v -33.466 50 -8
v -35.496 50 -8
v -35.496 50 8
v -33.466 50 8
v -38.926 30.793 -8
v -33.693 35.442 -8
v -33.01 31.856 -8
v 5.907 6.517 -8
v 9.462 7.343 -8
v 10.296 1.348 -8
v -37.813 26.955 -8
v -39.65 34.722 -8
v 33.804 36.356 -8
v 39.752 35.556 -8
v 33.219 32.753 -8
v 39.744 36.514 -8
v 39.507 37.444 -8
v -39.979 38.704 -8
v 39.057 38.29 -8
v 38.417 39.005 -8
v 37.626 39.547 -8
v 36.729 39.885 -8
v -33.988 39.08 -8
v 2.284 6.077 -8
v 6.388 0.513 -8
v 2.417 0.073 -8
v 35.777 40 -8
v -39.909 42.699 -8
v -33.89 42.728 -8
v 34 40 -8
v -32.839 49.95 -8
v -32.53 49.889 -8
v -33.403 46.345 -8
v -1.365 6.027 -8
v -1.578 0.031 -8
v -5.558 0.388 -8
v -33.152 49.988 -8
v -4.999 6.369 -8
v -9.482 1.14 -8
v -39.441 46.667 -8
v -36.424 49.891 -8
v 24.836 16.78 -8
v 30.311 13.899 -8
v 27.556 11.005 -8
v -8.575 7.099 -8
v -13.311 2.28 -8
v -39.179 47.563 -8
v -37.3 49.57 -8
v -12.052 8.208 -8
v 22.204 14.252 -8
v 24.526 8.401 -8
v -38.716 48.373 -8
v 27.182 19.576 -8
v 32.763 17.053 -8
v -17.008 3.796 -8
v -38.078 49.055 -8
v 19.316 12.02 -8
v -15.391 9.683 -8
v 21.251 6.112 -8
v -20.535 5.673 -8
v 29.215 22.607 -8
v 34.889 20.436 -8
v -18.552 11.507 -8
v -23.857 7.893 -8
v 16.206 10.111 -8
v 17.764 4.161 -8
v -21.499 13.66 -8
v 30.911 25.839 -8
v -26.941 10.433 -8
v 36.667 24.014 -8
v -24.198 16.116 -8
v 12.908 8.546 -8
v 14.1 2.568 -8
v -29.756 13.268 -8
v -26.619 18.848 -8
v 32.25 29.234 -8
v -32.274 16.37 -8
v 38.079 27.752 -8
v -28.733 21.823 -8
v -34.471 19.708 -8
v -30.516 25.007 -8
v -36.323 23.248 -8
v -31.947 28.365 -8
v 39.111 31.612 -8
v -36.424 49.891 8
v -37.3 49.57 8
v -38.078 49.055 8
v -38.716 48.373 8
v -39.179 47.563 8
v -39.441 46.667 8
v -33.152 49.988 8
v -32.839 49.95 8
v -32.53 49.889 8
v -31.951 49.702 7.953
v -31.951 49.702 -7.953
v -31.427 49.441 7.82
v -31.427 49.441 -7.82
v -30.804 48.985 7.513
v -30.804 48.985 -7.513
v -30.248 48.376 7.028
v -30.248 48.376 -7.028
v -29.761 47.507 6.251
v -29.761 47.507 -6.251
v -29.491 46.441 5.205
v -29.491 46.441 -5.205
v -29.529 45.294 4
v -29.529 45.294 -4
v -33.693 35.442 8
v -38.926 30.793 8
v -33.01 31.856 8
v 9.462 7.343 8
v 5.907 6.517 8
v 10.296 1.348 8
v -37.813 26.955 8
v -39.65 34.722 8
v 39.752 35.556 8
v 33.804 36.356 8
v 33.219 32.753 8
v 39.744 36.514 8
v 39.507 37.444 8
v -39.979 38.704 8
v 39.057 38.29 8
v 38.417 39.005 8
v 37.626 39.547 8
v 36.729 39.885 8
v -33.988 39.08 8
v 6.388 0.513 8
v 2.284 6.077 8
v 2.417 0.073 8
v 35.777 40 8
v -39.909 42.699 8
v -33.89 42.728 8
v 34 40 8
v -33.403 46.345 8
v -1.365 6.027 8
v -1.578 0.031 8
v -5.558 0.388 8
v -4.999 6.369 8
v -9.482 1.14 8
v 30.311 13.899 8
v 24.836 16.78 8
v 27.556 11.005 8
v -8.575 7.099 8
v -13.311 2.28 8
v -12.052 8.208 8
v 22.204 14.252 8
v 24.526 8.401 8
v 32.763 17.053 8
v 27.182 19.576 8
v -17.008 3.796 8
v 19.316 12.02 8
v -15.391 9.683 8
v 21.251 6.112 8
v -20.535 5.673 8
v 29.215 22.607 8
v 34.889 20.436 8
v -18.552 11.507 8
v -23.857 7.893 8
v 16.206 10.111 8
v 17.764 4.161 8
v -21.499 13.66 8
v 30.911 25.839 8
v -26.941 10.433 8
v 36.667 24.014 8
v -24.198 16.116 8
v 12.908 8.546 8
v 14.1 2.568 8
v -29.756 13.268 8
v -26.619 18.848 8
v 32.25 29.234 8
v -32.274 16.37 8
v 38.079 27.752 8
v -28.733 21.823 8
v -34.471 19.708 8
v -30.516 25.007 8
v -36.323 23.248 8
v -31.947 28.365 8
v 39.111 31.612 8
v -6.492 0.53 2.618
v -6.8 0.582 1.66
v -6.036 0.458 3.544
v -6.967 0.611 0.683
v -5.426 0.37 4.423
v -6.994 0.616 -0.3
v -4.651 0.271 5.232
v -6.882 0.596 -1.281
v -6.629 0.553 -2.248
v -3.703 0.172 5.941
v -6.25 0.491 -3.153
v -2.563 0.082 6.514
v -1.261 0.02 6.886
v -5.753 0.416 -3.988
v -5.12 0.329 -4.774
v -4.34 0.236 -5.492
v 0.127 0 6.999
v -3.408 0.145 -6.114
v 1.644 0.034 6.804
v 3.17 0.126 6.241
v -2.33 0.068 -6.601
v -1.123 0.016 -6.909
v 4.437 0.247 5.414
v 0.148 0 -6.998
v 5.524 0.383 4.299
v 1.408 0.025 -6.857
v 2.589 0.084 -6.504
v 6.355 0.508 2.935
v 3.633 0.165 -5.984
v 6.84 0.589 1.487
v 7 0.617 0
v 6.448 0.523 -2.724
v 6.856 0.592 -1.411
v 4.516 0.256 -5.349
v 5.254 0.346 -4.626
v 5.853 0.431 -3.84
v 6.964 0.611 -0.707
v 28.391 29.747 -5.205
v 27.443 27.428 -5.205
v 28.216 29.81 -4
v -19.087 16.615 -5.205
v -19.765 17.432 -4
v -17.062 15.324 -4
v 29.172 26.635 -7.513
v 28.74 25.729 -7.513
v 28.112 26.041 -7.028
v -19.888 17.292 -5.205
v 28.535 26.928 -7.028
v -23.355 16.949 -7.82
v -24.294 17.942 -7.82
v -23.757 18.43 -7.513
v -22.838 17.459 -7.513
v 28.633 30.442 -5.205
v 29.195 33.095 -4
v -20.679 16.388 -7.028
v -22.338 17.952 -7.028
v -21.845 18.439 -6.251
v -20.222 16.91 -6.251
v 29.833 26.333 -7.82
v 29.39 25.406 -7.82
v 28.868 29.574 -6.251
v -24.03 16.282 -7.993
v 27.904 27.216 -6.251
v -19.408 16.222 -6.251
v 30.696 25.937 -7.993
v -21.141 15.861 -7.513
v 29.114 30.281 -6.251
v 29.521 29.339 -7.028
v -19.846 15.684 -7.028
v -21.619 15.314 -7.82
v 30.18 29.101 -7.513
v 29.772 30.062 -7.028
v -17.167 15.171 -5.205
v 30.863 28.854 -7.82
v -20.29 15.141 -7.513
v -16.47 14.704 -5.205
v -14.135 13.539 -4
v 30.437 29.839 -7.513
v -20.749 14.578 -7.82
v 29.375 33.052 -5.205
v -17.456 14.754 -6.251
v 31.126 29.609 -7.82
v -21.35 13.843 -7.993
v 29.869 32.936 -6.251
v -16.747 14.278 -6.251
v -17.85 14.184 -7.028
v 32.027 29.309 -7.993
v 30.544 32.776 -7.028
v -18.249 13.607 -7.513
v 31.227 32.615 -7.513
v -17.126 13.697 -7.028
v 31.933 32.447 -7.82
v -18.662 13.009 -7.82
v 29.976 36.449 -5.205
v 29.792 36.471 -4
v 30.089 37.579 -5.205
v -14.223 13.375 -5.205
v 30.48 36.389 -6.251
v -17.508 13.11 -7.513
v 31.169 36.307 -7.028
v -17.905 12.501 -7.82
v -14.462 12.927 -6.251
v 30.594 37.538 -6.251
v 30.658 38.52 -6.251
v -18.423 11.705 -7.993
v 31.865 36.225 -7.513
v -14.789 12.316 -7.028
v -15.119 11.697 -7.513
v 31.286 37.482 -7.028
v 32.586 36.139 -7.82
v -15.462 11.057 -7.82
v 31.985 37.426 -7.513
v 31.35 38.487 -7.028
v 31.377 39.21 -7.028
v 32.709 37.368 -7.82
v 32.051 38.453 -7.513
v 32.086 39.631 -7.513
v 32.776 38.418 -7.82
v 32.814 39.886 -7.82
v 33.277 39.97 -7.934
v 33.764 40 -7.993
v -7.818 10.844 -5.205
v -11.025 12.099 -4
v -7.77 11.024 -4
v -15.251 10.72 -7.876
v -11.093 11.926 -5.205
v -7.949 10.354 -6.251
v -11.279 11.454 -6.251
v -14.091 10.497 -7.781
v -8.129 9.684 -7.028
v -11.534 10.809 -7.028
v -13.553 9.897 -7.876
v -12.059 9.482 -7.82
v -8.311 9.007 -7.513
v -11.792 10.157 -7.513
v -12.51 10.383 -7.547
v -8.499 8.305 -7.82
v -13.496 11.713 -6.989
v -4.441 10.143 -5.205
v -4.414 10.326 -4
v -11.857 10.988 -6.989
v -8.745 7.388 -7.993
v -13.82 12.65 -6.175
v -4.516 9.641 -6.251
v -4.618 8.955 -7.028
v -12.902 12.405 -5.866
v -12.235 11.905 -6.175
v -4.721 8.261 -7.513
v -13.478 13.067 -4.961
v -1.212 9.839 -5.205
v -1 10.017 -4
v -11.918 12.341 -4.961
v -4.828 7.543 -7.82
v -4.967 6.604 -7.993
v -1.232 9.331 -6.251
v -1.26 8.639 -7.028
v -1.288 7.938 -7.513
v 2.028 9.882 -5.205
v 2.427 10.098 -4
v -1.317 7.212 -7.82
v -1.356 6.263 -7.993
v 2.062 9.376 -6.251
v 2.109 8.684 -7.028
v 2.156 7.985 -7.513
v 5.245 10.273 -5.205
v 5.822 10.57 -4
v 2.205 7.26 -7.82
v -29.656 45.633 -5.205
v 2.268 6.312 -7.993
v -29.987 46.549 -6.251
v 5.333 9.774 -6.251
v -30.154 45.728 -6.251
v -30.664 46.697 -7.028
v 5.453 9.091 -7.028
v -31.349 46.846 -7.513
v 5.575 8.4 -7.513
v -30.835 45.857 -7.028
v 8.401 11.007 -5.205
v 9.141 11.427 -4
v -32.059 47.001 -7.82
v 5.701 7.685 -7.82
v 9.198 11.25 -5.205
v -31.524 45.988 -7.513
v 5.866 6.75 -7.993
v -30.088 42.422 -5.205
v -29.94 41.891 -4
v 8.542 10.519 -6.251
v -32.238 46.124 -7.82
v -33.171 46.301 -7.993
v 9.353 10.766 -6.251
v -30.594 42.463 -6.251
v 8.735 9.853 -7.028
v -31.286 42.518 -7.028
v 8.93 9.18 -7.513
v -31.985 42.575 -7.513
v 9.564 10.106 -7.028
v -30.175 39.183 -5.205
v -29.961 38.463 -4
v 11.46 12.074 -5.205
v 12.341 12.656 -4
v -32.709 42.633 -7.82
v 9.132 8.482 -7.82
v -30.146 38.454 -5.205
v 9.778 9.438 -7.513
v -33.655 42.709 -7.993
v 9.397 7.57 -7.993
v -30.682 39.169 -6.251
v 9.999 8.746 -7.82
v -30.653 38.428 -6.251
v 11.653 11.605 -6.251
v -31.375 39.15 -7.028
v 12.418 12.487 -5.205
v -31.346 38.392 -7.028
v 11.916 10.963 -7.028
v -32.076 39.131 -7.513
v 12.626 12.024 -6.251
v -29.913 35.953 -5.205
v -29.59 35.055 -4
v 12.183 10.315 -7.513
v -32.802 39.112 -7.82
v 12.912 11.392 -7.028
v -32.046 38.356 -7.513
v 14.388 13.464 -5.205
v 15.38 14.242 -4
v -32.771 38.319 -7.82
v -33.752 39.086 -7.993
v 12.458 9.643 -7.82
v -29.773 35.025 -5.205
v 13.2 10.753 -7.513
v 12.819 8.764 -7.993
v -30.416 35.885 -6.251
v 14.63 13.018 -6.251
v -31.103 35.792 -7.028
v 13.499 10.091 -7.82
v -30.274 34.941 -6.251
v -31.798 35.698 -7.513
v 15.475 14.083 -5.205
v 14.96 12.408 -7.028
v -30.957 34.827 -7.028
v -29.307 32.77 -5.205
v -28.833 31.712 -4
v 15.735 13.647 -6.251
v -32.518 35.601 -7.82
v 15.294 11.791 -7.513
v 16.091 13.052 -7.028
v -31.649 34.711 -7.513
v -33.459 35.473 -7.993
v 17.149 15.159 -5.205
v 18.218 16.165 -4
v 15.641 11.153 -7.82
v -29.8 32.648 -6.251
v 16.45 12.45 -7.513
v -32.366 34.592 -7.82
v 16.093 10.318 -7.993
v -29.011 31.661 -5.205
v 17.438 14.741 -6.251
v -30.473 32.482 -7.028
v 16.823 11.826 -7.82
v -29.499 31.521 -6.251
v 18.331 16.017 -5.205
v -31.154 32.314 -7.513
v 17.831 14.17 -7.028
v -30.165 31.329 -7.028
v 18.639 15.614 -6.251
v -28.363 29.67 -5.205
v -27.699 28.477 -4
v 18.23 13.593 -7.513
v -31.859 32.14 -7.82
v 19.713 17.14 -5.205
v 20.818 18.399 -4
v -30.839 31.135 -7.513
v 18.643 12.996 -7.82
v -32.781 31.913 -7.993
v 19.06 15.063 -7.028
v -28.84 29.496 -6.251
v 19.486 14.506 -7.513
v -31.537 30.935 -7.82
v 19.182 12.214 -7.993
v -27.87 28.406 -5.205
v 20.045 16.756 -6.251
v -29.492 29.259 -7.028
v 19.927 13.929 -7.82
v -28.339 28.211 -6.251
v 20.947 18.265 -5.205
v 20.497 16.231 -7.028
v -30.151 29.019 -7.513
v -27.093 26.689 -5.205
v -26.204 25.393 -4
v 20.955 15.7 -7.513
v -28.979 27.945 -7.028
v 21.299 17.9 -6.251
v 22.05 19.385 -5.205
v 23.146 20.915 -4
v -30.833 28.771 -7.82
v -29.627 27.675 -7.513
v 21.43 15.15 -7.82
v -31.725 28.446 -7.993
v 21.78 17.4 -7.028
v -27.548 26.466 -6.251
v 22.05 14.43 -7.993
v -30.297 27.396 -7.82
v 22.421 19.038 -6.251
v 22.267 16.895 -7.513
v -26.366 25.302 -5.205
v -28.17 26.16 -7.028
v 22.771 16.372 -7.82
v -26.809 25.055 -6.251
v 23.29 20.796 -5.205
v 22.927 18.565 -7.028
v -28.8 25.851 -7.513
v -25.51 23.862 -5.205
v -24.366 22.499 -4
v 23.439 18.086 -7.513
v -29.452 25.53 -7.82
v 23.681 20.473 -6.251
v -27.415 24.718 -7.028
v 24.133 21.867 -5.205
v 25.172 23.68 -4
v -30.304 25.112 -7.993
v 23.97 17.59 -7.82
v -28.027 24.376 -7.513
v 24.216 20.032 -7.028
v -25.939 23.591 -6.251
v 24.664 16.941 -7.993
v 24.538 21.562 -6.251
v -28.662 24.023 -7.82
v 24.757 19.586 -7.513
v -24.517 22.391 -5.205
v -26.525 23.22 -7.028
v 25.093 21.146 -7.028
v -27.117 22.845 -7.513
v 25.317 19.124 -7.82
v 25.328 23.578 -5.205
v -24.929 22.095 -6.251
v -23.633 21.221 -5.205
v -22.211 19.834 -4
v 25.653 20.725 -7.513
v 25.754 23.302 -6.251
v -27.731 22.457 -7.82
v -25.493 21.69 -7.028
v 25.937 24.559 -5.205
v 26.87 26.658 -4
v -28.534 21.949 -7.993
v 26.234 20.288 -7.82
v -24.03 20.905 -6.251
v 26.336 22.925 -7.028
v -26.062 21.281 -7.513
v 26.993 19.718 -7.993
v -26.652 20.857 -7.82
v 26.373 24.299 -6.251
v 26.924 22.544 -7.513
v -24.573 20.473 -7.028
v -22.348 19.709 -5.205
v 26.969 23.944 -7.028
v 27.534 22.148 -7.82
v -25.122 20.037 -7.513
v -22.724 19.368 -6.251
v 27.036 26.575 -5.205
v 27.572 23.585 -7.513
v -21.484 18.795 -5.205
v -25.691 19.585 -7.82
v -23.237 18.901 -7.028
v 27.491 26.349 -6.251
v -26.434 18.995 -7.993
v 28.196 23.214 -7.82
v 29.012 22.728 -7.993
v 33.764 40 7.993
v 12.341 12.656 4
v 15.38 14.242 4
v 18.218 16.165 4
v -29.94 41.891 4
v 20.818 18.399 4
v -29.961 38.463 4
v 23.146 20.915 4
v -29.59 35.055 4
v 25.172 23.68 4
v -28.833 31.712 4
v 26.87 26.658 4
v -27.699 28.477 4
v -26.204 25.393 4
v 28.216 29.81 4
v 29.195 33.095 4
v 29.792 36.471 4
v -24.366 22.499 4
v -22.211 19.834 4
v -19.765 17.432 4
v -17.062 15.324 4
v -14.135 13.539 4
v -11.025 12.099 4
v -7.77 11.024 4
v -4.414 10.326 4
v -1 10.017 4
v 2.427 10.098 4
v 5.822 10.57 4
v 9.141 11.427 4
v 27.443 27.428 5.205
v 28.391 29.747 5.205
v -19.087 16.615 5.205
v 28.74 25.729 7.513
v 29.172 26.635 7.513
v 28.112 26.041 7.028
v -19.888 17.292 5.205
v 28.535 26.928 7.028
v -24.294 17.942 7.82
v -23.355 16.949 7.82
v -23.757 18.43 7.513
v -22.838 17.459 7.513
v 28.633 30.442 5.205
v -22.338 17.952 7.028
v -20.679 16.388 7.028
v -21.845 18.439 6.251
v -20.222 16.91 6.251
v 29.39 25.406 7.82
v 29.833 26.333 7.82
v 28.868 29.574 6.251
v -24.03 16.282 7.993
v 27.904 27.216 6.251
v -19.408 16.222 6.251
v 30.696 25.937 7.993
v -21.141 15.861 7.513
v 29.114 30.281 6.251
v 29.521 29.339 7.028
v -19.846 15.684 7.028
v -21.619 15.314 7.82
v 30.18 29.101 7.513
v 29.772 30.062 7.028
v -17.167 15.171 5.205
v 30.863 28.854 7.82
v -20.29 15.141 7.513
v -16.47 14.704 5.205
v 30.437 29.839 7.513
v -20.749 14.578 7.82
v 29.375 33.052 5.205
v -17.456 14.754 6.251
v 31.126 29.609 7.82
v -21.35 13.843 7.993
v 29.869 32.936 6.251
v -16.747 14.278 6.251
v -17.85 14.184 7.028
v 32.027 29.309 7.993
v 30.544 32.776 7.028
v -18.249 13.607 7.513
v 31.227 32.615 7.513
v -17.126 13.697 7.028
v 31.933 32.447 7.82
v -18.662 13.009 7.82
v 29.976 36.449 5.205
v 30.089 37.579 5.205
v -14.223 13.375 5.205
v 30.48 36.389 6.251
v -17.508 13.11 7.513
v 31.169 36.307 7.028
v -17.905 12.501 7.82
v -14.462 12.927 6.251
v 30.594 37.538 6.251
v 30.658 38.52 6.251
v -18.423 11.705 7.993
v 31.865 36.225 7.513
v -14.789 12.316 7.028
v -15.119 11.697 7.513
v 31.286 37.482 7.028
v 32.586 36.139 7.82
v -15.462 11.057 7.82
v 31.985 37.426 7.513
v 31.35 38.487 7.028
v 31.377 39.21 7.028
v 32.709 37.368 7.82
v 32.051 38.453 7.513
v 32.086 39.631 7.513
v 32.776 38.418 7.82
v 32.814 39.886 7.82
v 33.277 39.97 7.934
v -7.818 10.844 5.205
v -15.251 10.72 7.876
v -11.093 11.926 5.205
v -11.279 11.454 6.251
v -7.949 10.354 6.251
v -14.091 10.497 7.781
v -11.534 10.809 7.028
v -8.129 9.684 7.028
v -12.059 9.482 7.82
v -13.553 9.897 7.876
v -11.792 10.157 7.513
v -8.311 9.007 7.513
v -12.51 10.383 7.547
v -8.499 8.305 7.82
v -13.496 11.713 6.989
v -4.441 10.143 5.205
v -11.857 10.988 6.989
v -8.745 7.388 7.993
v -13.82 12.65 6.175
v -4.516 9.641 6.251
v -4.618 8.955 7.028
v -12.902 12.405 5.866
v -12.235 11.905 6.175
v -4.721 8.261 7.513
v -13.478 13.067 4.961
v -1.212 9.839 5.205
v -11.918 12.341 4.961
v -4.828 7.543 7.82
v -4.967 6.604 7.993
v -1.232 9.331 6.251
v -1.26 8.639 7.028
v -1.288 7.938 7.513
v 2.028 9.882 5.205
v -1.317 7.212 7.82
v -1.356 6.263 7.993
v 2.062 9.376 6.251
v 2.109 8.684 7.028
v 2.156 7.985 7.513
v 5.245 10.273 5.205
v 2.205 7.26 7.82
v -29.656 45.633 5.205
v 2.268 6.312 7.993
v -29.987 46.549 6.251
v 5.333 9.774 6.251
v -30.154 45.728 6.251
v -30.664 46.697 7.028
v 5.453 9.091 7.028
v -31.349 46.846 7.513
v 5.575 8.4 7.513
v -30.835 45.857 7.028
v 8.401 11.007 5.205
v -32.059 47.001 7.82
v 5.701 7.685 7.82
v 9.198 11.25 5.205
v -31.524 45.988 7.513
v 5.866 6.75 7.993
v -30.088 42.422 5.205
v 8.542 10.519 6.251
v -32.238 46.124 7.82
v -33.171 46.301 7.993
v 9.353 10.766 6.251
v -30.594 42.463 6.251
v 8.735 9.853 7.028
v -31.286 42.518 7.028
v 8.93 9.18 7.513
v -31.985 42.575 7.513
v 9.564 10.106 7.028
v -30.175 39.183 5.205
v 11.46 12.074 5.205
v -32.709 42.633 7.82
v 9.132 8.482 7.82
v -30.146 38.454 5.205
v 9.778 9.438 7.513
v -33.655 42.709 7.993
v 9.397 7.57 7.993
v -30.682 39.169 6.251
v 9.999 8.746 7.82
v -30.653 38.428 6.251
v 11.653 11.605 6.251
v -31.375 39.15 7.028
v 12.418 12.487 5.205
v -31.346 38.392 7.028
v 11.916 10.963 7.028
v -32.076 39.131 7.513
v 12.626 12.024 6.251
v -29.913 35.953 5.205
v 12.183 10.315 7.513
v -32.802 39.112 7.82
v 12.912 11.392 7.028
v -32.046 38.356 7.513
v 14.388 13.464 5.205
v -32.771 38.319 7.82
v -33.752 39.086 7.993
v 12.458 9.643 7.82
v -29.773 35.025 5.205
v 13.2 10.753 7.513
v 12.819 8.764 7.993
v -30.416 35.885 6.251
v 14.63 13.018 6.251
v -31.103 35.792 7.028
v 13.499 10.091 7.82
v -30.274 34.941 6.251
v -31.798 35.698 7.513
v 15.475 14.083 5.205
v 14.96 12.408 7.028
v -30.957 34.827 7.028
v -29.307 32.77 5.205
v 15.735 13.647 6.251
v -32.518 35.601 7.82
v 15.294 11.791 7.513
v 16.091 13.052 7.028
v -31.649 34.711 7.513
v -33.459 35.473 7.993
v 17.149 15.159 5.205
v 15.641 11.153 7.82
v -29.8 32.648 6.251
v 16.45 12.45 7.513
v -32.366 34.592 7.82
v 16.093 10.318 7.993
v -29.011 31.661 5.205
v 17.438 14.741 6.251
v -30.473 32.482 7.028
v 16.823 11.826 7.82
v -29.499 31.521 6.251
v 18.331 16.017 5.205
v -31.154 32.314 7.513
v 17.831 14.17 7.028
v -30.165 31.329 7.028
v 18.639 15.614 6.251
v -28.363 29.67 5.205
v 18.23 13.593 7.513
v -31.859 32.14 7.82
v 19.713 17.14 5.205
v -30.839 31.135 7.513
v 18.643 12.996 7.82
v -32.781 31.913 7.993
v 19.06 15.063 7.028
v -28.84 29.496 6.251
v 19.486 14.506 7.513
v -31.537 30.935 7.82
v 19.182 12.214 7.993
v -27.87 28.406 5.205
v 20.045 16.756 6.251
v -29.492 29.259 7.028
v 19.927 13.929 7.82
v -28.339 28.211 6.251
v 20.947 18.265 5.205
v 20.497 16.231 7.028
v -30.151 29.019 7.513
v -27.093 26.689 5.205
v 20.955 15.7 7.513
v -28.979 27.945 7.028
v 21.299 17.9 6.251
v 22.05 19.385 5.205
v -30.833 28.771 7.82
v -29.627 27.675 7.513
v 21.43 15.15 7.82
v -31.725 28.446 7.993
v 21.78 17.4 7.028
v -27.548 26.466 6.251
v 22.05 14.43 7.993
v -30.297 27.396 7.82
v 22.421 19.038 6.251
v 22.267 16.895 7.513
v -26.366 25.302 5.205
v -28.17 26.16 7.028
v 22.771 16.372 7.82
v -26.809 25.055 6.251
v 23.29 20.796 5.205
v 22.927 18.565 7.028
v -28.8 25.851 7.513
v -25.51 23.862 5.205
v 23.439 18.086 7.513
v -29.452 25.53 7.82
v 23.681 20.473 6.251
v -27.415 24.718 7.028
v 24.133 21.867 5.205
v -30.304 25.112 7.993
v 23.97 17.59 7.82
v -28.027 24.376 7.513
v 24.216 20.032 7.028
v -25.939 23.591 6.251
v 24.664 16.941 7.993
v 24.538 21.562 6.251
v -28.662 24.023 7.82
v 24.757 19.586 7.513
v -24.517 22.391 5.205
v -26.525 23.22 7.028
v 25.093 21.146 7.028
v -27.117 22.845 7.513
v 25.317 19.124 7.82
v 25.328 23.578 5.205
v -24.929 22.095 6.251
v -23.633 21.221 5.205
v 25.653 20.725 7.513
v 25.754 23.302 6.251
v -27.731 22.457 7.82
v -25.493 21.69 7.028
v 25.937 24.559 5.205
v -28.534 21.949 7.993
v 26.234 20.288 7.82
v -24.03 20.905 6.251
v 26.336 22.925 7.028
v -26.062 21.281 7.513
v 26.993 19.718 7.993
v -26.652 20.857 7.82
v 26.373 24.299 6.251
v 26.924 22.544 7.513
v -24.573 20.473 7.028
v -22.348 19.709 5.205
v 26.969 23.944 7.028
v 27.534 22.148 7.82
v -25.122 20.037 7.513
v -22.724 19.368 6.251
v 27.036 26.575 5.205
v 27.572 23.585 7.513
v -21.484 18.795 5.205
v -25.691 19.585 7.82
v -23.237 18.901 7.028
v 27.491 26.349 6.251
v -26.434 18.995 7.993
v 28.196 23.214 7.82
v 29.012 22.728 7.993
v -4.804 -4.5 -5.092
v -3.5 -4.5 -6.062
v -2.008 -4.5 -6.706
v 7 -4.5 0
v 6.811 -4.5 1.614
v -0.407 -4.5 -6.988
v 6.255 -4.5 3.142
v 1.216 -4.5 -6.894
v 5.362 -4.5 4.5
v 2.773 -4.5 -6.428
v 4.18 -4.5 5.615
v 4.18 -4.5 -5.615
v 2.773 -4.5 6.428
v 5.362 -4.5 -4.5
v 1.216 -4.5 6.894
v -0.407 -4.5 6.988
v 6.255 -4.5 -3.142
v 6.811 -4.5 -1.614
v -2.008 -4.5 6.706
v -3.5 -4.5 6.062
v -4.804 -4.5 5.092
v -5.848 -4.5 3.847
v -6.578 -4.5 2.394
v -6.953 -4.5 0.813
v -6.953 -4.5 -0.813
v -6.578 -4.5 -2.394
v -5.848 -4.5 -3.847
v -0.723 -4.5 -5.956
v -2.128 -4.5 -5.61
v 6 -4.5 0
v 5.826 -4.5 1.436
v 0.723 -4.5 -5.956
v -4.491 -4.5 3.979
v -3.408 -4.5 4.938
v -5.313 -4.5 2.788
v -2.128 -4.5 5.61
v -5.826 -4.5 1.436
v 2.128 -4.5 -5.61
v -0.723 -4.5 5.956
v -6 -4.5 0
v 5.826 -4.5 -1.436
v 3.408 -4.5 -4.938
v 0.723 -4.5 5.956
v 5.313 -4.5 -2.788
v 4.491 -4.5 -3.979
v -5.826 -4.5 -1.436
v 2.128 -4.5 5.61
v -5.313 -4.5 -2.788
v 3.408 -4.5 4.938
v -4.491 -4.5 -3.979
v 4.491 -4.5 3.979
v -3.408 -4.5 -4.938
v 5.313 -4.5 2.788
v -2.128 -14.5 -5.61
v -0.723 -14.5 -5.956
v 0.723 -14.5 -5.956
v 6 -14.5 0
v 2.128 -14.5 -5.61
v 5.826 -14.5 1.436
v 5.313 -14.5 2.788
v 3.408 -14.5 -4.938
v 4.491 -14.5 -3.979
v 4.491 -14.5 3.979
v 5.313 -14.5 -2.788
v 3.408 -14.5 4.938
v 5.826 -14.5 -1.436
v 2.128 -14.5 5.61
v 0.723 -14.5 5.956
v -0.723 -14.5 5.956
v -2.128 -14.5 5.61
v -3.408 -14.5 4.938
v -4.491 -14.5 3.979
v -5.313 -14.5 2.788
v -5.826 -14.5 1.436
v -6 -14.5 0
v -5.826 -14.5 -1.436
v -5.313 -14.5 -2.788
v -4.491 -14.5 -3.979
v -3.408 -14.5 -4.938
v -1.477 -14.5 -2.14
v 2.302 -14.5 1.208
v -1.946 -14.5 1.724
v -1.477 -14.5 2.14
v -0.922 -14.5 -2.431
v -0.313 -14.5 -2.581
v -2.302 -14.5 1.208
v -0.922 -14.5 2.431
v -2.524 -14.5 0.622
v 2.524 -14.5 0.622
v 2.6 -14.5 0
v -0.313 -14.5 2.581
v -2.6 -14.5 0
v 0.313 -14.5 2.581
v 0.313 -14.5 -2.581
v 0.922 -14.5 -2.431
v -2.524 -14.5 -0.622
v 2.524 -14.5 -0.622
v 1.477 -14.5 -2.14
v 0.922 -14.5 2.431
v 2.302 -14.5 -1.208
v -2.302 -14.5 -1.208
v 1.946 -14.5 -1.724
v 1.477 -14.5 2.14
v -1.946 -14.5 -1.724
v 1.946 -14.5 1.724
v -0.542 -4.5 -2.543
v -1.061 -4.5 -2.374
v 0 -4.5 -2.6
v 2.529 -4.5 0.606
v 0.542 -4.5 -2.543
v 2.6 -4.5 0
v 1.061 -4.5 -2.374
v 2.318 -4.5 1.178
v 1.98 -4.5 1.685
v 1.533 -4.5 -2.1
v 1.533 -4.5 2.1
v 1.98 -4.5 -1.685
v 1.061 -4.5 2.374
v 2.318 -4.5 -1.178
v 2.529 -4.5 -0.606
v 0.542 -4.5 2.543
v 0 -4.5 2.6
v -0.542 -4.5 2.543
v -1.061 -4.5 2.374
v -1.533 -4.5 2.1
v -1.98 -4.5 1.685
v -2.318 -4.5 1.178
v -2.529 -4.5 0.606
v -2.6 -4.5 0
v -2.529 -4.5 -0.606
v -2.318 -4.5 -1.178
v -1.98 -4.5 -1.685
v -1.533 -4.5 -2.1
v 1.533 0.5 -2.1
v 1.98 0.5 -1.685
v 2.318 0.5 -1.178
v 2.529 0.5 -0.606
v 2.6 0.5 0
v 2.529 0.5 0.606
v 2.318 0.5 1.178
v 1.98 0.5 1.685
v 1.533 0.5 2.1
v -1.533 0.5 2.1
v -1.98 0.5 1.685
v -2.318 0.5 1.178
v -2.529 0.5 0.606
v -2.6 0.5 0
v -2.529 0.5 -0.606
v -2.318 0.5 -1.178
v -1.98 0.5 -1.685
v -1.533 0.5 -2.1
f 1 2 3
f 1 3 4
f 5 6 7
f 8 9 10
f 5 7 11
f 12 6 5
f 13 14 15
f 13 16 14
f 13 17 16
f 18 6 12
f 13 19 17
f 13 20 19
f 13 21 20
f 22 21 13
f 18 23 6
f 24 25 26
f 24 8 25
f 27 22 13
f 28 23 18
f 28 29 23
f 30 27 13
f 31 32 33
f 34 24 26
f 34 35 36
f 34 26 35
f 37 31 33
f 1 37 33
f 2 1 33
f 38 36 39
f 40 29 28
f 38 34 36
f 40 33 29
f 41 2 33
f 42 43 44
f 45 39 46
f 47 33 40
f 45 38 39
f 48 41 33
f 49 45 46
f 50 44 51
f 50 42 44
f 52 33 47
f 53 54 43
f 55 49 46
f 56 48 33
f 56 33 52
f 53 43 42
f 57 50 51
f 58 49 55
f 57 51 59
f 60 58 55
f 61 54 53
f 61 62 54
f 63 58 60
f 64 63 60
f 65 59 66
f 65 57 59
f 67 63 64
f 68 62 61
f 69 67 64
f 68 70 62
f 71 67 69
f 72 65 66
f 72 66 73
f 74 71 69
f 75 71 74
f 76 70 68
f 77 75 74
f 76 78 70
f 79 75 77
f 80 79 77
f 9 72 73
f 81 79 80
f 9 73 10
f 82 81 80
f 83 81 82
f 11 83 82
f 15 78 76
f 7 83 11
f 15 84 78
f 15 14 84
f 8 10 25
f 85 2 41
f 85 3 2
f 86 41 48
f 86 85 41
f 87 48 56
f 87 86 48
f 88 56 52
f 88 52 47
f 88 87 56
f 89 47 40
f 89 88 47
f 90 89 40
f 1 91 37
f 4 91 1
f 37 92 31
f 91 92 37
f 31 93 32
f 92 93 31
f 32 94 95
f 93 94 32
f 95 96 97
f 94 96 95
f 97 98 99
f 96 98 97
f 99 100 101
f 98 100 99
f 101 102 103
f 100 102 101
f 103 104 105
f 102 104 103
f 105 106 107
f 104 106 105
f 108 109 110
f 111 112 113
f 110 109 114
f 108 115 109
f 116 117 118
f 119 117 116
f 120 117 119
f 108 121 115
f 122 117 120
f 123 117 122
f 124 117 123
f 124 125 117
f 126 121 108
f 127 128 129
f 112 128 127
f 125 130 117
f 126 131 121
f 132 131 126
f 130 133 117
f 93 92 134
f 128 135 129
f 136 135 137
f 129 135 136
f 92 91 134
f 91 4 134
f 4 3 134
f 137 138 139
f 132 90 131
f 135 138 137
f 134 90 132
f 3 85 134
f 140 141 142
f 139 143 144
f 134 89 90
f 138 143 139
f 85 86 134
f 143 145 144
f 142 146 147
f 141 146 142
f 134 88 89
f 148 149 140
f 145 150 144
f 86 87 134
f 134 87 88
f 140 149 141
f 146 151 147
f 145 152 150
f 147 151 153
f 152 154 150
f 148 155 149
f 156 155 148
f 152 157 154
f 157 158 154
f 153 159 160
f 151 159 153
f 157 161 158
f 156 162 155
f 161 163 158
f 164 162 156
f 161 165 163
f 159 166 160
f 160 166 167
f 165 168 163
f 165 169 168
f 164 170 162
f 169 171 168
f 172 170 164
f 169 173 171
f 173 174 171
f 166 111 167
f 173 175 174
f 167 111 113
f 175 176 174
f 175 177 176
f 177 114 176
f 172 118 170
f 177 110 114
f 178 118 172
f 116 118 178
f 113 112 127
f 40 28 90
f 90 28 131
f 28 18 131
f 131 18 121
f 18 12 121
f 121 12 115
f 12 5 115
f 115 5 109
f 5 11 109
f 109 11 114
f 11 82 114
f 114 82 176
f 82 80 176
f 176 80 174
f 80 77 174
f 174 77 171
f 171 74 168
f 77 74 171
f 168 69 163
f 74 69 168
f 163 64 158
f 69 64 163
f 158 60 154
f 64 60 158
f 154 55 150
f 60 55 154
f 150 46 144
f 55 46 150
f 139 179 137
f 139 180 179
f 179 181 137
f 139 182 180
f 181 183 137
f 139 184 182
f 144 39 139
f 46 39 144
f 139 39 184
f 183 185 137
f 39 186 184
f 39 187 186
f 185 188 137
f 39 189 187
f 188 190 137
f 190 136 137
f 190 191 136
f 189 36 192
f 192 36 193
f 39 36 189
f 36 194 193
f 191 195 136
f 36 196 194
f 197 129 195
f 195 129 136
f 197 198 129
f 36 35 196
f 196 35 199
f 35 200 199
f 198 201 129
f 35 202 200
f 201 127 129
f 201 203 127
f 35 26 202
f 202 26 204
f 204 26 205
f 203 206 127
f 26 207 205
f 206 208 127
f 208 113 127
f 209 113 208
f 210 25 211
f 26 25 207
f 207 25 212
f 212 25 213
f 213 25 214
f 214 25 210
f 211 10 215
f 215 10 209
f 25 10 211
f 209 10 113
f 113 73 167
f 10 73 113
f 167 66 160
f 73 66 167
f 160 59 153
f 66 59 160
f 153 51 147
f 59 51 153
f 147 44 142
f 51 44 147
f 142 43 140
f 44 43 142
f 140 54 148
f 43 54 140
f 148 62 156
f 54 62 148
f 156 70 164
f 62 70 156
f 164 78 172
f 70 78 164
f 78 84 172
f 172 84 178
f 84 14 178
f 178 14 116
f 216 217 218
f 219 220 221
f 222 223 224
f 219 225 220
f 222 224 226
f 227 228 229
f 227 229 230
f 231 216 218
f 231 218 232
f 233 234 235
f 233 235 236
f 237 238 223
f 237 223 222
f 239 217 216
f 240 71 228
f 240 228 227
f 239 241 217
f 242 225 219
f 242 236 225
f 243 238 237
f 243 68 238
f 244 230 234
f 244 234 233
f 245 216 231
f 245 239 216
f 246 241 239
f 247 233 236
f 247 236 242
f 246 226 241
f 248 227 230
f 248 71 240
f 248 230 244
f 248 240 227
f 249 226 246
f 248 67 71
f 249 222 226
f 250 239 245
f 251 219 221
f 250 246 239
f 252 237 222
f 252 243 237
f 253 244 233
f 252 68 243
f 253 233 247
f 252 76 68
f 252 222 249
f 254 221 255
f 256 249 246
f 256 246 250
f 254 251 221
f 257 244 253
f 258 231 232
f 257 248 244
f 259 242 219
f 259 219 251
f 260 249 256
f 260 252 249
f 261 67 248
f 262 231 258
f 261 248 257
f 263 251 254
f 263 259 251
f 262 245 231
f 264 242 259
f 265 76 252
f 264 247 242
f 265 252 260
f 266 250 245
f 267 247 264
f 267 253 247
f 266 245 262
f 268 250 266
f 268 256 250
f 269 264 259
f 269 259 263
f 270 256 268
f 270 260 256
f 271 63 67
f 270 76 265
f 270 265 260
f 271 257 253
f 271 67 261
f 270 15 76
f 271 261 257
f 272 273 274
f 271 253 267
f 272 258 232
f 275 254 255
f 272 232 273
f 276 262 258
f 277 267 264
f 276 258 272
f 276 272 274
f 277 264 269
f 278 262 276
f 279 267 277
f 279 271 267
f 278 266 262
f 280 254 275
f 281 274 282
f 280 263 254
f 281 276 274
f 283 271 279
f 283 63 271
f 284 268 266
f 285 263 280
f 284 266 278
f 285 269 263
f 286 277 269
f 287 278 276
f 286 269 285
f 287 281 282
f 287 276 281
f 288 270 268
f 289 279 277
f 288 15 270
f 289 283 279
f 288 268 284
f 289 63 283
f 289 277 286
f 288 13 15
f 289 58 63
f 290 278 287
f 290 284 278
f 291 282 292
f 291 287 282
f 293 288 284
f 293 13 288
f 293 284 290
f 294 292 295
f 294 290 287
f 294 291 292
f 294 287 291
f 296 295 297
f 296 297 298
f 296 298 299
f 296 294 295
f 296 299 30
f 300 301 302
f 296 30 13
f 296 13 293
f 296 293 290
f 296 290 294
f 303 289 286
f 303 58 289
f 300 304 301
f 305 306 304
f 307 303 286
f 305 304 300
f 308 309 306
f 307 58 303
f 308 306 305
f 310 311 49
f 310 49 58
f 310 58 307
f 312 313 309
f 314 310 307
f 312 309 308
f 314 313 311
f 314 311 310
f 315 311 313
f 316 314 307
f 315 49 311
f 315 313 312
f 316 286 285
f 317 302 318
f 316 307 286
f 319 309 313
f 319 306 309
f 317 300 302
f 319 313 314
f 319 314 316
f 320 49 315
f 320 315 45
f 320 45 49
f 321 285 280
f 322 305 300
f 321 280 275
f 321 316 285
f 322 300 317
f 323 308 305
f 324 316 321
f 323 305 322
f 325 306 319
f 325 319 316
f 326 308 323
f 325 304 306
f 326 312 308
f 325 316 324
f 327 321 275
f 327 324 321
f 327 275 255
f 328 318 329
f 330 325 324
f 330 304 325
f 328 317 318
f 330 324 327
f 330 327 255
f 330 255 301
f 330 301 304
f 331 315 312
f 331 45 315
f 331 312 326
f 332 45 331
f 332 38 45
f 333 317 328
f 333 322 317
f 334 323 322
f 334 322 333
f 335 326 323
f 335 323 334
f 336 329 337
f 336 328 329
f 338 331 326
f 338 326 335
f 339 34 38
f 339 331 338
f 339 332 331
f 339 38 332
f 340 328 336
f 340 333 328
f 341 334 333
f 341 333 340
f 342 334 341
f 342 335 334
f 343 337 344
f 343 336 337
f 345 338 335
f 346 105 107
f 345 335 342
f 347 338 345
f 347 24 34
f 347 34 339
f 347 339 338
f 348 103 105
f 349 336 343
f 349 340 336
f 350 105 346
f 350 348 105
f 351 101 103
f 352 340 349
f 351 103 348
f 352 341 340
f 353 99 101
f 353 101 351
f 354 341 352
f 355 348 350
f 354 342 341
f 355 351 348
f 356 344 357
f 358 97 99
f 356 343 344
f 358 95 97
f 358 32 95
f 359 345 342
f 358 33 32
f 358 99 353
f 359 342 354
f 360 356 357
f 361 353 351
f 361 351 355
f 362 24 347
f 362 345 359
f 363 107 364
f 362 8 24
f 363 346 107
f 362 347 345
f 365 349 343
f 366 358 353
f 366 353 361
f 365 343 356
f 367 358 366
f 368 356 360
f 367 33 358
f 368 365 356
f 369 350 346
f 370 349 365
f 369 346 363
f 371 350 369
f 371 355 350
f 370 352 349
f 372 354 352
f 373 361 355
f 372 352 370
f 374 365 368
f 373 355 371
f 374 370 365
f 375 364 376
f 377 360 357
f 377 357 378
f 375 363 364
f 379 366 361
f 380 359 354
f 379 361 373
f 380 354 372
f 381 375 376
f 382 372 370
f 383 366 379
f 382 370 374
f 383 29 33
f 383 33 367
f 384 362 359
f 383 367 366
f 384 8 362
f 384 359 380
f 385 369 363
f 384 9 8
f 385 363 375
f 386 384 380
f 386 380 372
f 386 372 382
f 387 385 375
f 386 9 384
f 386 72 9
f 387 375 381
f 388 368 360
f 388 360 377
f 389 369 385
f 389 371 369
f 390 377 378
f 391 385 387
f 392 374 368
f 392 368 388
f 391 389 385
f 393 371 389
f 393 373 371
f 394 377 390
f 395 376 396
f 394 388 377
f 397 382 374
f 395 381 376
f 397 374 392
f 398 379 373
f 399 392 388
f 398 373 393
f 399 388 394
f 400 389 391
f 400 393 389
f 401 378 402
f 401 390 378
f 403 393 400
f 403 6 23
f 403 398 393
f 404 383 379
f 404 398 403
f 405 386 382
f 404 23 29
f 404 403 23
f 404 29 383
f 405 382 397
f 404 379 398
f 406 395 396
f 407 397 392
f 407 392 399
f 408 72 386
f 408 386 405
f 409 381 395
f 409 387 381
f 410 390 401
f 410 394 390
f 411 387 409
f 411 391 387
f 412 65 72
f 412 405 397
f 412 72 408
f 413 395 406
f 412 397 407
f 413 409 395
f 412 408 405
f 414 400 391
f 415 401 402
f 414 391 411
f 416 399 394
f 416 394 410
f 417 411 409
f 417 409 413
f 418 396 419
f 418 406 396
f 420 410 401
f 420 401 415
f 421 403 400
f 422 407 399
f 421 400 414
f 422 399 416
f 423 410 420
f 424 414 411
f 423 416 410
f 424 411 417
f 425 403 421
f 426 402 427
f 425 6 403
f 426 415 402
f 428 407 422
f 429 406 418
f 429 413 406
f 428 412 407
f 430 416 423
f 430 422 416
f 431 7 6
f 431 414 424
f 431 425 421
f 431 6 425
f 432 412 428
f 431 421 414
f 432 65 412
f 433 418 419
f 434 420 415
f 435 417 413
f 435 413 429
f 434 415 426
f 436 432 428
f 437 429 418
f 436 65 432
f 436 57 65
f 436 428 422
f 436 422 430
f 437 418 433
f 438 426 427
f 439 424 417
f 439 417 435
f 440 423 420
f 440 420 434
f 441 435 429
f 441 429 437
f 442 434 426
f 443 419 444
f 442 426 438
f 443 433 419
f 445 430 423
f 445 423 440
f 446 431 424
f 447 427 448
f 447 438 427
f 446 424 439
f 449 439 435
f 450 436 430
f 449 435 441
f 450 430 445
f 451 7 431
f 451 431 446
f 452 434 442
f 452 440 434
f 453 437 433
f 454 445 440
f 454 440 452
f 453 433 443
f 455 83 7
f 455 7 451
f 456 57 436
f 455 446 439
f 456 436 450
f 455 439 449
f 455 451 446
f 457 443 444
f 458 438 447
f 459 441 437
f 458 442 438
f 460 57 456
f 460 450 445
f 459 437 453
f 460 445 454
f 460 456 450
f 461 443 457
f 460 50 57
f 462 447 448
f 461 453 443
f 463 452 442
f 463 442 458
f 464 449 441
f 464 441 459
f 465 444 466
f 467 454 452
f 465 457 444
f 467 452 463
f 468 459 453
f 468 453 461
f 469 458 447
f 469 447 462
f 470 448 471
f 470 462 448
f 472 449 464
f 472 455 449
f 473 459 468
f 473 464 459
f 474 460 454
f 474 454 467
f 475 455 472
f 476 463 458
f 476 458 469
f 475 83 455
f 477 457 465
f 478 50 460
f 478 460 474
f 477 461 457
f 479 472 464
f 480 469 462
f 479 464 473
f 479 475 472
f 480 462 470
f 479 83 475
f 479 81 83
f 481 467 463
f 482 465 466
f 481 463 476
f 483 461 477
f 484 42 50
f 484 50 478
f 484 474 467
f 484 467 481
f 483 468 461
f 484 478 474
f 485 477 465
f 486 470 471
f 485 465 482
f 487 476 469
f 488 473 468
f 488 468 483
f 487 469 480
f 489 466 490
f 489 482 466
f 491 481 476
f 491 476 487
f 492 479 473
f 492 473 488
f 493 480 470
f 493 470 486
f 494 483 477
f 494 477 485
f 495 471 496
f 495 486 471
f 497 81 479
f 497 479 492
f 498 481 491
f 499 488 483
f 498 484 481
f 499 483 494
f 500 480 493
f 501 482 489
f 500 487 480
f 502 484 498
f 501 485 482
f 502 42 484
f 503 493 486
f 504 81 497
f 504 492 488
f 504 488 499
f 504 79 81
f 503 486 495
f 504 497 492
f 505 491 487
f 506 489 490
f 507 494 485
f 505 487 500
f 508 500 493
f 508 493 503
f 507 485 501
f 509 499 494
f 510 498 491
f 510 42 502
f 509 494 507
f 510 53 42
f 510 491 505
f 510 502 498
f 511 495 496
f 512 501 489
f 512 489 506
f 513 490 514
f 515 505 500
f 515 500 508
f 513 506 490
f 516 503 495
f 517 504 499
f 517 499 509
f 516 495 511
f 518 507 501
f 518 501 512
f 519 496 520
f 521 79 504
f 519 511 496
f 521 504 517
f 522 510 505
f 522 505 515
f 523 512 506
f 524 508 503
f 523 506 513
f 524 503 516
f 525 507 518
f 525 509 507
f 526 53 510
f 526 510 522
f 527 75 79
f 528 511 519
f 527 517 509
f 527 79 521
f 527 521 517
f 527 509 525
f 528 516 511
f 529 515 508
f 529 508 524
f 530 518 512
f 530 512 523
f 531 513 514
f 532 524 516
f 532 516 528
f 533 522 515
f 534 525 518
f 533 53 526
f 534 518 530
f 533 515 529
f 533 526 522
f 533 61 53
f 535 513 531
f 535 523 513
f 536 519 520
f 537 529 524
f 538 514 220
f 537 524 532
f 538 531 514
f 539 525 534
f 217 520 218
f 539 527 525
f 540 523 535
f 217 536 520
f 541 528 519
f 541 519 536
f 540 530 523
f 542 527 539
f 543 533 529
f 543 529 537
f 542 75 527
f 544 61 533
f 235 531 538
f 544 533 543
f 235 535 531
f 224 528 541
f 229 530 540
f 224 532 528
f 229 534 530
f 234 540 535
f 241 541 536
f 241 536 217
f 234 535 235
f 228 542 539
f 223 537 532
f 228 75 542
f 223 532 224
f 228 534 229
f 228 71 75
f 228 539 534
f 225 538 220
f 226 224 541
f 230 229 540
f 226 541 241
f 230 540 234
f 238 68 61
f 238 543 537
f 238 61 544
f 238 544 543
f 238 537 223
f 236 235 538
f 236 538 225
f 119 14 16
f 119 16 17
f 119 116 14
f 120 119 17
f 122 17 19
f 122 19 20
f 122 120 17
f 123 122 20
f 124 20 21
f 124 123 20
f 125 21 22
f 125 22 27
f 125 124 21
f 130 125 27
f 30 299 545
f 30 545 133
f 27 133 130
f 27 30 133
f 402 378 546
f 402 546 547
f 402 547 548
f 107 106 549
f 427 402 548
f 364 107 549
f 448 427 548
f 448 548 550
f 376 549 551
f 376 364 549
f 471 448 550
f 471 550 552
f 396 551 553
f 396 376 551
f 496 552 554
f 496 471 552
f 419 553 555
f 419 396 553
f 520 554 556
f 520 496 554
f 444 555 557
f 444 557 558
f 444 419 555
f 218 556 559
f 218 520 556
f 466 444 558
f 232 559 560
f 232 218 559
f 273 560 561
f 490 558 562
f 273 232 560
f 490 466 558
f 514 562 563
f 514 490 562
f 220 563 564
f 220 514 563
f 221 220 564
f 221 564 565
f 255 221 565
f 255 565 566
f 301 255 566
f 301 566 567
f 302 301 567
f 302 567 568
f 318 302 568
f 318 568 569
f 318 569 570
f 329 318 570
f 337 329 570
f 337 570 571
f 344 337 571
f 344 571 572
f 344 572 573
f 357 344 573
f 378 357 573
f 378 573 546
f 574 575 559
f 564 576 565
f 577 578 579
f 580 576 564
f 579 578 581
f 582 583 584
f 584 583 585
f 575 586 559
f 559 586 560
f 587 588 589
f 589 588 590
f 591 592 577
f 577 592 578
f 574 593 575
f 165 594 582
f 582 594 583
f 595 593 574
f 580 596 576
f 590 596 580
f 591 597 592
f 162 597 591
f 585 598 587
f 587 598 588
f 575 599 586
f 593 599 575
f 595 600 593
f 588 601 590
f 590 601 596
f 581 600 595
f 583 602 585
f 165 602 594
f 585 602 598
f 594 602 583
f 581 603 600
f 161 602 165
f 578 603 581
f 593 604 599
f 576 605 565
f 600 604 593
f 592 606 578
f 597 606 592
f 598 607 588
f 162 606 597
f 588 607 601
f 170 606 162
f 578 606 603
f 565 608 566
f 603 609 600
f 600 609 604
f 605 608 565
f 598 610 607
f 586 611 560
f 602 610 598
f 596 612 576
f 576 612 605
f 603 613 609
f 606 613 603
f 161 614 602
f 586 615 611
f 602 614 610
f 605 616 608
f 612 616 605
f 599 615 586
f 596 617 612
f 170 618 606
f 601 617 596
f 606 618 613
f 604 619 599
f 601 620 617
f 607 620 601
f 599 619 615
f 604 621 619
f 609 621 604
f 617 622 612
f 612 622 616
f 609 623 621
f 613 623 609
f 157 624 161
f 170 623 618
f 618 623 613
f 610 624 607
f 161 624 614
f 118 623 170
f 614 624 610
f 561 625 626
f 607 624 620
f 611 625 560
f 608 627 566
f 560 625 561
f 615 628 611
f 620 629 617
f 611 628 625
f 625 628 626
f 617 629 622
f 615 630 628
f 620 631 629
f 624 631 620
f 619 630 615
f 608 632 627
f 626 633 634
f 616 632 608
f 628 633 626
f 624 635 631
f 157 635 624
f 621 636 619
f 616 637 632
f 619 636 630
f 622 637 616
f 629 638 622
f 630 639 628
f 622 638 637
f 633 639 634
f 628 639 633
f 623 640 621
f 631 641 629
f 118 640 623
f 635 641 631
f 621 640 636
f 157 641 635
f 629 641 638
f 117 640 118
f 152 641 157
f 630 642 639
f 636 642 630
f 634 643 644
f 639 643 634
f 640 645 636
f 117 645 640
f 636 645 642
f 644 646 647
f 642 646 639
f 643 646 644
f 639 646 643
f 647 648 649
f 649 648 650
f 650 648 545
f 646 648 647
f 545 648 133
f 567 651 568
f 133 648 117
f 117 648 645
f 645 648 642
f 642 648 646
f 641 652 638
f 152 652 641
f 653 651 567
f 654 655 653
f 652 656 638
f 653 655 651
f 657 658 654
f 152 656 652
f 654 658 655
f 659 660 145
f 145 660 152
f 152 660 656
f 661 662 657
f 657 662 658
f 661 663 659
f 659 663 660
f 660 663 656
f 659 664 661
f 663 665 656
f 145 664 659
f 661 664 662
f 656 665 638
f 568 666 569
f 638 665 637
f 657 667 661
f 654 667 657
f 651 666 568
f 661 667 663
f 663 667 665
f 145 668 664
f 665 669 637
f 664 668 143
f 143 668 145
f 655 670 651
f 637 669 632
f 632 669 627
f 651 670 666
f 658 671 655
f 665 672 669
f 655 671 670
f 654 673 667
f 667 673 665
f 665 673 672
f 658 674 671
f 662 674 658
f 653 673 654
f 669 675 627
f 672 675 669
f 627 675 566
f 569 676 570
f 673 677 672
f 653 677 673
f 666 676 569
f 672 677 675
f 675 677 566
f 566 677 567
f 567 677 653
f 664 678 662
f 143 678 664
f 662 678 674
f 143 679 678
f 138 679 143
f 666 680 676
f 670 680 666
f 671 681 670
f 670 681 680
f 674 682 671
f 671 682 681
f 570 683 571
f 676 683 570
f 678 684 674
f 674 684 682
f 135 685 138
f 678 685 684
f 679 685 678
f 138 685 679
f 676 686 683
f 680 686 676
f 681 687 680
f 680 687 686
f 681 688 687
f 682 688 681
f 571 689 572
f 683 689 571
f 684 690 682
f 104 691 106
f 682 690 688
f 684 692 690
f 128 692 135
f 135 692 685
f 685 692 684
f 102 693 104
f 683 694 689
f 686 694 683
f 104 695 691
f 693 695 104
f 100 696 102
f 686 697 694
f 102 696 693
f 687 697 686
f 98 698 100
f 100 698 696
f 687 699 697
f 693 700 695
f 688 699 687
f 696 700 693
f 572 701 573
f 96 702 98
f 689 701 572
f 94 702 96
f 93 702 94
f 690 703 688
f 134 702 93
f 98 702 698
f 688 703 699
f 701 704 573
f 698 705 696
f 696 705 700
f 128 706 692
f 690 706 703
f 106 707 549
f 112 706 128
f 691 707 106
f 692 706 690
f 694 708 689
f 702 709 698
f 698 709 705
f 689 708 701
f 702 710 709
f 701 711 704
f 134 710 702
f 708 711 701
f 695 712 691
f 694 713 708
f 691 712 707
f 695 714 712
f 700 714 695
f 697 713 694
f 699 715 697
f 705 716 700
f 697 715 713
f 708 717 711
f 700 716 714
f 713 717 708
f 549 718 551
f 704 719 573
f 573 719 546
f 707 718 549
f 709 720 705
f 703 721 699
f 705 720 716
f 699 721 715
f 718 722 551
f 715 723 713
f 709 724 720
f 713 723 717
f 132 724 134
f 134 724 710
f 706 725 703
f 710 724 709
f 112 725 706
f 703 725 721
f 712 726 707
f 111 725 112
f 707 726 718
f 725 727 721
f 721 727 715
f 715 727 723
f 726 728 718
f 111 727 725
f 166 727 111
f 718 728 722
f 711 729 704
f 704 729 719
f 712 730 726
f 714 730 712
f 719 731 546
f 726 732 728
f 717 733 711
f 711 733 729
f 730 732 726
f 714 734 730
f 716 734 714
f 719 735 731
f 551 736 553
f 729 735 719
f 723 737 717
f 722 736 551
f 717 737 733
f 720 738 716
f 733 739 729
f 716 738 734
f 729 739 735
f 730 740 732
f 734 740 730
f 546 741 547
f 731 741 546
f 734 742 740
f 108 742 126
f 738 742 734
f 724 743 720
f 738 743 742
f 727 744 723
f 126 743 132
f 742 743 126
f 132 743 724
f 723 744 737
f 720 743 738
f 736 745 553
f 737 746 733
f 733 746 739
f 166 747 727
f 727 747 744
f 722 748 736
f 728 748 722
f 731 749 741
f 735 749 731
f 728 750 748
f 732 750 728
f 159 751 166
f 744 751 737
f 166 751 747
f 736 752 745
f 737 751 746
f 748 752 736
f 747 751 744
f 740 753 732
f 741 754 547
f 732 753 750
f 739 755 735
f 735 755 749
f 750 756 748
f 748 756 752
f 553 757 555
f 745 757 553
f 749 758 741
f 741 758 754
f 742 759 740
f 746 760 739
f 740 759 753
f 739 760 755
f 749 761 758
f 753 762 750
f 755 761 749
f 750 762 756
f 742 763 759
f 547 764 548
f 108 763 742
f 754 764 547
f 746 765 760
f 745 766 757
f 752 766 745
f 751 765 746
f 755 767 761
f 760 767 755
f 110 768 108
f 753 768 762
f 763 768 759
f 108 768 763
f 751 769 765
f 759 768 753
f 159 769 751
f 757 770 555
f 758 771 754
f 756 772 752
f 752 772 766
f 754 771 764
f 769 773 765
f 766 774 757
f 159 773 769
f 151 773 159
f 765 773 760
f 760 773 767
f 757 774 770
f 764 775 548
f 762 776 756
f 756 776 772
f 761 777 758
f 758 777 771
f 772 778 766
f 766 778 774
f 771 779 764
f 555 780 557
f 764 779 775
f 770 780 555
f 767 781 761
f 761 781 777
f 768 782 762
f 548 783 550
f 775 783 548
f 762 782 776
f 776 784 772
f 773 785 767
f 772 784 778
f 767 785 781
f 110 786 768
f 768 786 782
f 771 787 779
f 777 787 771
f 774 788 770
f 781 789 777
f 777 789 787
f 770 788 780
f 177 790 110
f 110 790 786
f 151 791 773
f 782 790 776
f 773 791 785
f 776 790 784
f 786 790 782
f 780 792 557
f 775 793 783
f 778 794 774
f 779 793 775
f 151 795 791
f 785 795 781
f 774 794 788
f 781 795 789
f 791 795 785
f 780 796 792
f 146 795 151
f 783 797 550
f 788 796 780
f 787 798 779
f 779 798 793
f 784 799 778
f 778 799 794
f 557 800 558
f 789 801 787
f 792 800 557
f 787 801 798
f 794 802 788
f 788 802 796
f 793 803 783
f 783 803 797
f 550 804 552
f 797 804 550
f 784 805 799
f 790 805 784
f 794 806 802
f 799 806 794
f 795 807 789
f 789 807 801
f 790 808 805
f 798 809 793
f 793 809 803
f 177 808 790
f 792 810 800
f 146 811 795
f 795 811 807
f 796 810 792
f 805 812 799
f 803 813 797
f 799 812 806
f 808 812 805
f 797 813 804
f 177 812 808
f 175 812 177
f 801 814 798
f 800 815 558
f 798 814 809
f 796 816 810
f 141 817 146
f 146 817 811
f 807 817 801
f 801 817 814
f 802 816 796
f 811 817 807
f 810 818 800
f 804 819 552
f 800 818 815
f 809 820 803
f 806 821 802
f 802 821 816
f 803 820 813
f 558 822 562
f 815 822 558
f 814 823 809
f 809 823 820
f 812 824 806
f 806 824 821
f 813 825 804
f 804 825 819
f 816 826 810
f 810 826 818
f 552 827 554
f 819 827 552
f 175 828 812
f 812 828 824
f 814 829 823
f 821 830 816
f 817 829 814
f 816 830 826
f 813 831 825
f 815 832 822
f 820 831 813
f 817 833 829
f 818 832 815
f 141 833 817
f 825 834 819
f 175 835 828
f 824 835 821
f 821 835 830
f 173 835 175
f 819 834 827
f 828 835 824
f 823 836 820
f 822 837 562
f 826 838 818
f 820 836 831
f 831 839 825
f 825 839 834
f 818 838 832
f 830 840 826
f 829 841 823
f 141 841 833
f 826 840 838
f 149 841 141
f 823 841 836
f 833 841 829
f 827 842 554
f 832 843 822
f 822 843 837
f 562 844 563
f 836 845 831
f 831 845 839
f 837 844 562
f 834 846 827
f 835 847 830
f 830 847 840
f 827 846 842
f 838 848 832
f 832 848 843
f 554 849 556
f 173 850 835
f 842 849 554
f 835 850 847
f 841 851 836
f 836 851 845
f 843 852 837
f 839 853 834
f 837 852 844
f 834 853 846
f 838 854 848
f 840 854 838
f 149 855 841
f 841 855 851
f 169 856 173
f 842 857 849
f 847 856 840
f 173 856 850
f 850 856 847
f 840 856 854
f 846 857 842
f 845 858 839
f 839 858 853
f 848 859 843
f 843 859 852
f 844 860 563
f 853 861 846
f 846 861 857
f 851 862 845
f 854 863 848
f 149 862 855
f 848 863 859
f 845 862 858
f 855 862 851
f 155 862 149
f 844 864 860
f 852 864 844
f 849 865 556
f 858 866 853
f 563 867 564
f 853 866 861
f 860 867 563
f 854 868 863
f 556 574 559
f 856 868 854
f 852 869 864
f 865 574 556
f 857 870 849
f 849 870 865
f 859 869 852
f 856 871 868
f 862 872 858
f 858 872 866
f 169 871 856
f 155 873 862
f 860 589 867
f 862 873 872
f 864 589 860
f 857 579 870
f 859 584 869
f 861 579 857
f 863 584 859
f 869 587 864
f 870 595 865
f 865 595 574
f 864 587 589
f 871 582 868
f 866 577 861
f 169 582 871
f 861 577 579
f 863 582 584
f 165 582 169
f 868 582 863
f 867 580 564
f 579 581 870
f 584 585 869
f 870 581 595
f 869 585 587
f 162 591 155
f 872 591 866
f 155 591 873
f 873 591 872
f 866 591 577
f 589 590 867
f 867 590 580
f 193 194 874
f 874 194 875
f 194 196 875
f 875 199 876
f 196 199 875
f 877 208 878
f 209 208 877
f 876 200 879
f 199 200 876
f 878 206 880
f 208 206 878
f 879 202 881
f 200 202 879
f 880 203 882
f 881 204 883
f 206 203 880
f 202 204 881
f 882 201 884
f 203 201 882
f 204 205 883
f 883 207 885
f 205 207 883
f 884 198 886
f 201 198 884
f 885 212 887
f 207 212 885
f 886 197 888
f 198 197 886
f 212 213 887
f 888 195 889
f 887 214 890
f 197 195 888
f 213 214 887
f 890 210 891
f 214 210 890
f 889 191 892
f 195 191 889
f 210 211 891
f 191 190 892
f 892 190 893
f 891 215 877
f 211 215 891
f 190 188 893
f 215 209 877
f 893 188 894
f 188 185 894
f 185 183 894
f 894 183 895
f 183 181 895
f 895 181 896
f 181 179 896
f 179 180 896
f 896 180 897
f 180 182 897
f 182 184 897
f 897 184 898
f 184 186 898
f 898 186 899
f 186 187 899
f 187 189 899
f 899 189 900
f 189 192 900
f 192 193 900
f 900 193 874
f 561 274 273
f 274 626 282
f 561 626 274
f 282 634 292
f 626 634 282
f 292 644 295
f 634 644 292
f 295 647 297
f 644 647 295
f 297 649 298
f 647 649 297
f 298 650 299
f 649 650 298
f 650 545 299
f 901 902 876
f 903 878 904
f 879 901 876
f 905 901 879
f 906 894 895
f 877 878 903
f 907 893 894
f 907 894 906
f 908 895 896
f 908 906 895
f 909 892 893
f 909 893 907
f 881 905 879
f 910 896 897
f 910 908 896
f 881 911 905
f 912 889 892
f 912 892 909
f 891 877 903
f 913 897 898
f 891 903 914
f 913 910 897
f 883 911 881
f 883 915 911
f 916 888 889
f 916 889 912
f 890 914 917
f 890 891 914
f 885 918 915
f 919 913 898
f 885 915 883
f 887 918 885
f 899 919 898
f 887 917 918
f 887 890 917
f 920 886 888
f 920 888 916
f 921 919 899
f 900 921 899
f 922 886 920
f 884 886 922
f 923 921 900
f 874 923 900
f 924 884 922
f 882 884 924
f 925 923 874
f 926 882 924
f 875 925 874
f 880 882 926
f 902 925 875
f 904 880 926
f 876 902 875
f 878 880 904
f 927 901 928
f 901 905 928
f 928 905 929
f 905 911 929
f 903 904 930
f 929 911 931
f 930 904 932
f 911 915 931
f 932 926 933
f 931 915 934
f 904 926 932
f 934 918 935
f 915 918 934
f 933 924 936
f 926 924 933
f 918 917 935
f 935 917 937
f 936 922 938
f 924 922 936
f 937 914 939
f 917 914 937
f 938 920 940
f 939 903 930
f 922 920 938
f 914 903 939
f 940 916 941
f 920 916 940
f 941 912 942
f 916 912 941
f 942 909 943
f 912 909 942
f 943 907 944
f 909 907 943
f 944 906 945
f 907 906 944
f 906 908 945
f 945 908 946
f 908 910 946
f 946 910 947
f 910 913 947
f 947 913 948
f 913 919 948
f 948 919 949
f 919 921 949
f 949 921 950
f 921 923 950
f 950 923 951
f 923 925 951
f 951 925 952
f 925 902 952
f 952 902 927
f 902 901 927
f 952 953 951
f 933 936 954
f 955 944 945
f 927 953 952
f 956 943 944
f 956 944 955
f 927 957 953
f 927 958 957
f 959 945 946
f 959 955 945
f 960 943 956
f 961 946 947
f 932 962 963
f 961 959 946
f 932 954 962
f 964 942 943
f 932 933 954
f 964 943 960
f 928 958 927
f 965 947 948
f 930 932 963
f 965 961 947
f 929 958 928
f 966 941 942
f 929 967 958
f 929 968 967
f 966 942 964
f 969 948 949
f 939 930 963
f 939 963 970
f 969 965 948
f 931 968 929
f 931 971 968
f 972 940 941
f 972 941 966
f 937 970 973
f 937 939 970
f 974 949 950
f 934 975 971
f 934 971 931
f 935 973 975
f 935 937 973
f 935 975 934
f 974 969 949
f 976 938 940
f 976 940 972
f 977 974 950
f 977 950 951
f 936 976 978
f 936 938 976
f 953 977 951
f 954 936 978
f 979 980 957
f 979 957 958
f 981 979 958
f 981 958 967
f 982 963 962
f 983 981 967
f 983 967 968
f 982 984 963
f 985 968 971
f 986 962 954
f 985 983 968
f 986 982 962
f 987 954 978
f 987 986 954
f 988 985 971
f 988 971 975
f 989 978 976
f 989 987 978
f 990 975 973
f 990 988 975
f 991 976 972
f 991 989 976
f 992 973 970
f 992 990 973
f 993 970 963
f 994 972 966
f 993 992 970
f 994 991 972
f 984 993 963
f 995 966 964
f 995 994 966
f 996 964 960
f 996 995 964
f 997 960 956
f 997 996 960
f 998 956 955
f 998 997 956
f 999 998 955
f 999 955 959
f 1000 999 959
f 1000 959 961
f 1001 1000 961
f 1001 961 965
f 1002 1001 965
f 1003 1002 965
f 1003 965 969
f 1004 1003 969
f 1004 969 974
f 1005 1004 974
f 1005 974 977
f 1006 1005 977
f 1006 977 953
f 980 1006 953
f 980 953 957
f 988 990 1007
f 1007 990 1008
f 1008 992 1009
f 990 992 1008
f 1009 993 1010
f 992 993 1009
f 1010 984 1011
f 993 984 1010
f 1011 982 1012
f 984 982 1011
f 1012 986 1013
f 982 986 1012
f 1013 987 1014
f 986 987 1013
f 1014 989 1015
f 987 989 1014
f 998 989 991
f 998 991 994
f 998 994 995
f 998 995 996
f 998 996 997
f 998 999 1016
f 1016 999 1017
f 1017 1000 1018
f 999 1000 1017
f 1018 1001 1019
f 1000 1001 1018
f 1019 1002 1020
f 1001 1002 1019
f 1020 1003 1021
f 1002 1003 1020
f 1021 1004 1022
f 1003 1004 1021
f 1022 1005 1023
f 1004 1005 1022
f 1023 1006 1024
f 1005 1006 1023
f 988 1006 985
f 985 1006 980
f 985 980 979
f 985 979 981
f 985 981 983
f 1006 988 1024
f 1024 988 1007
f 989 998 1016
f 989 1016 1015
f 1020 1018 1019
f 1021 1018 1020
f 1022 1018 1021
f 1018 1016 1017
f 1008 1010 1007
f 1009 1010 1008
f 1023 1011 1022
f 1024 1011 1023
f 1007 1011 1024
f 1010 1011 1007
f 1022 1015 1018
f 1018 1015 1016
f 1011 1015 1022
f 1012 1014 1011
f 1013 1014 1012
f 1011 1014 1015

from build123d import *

# Parameters (mm, degrees)
PAD_DEPTH     = 8
SKETCH002_R   = 7
PAD001_DEPTH  = 4.5
POCKET_DEPTH  = 5
SKETCH005_R   = 6
SKETCH005_R_2 = 2.6
PAD002_DEPTH  = 10
FILLET_R      = 4


with BuildPart() as part:
    # Sketch001 → Pad (new body, symmetric)
    with BuildSketch(Plane.XY):
        with BuildLine():
            ThreePointArc((-28.284271, 50), (-5.073059, 10.432043), (30, 40))
            Line((30, 40), (40, 40))
            ThreePointArc((-38.729833, 50), (-5.040172, 0.318812), (40, 40))
            Line((-38.729833, 50), (-28.284271, 50))
        make_face()
    extrude(amount=PAD_DEPTH, both=True)

    # Sketch002 → Pad001 (join, symmetric)
    with BuildSketch(Plane.XZ):
        Circle(SKETCH002_R)
    extrude(amount=PAD001_DEPTH, both=True)

    # Sketch004 (on Face8 of Pad001) → Pocket (cut)
    with BuildSketch(Plane.XZ.offset(4.5)):
        with BuildLine():
            Line((-1.532971, 2.1), (1.532971, 2.1))
            ThreePointArc((1.532971, -2.1), (2.6, 0), (1.532971, 2.1))
            Line((-1.532971, -2.1), (1.532971, -2.1))
            ThreePointArc((-1.532971, 2.1), (-2.6, 0), (-1.532971, -2.1))
        make_face()
    extrude(amount=-POCKET_DEPTH, mode=Mode.SUBTRACT)

    # Sketch005 (on Face8 of Pocket) → Pad002 (join)
    with BuildSketch(Plane.XZ.offset(4.5)):
        Circle(SKETCH005_R)
        Circle(SKETCH005_R_2, mode=Mode.SUBTRACT)
    extrude(amount=PAD002_DEPTH)

    # Fillet
    fillet_edges = [part.edges().sort_by_distance(p)[0] for p in [
        (-28.284271, 50, 0),
        (30, 40, 0),
        (-5.073059, 10.432043, -8),
        (-5.073059, 10.432043, 8),
        (-38.729833, 50, 0),
        (40, 40, 0),
    ]]
    fillet(fillet_edges, radius=FILLET_R)


solid = part.part
